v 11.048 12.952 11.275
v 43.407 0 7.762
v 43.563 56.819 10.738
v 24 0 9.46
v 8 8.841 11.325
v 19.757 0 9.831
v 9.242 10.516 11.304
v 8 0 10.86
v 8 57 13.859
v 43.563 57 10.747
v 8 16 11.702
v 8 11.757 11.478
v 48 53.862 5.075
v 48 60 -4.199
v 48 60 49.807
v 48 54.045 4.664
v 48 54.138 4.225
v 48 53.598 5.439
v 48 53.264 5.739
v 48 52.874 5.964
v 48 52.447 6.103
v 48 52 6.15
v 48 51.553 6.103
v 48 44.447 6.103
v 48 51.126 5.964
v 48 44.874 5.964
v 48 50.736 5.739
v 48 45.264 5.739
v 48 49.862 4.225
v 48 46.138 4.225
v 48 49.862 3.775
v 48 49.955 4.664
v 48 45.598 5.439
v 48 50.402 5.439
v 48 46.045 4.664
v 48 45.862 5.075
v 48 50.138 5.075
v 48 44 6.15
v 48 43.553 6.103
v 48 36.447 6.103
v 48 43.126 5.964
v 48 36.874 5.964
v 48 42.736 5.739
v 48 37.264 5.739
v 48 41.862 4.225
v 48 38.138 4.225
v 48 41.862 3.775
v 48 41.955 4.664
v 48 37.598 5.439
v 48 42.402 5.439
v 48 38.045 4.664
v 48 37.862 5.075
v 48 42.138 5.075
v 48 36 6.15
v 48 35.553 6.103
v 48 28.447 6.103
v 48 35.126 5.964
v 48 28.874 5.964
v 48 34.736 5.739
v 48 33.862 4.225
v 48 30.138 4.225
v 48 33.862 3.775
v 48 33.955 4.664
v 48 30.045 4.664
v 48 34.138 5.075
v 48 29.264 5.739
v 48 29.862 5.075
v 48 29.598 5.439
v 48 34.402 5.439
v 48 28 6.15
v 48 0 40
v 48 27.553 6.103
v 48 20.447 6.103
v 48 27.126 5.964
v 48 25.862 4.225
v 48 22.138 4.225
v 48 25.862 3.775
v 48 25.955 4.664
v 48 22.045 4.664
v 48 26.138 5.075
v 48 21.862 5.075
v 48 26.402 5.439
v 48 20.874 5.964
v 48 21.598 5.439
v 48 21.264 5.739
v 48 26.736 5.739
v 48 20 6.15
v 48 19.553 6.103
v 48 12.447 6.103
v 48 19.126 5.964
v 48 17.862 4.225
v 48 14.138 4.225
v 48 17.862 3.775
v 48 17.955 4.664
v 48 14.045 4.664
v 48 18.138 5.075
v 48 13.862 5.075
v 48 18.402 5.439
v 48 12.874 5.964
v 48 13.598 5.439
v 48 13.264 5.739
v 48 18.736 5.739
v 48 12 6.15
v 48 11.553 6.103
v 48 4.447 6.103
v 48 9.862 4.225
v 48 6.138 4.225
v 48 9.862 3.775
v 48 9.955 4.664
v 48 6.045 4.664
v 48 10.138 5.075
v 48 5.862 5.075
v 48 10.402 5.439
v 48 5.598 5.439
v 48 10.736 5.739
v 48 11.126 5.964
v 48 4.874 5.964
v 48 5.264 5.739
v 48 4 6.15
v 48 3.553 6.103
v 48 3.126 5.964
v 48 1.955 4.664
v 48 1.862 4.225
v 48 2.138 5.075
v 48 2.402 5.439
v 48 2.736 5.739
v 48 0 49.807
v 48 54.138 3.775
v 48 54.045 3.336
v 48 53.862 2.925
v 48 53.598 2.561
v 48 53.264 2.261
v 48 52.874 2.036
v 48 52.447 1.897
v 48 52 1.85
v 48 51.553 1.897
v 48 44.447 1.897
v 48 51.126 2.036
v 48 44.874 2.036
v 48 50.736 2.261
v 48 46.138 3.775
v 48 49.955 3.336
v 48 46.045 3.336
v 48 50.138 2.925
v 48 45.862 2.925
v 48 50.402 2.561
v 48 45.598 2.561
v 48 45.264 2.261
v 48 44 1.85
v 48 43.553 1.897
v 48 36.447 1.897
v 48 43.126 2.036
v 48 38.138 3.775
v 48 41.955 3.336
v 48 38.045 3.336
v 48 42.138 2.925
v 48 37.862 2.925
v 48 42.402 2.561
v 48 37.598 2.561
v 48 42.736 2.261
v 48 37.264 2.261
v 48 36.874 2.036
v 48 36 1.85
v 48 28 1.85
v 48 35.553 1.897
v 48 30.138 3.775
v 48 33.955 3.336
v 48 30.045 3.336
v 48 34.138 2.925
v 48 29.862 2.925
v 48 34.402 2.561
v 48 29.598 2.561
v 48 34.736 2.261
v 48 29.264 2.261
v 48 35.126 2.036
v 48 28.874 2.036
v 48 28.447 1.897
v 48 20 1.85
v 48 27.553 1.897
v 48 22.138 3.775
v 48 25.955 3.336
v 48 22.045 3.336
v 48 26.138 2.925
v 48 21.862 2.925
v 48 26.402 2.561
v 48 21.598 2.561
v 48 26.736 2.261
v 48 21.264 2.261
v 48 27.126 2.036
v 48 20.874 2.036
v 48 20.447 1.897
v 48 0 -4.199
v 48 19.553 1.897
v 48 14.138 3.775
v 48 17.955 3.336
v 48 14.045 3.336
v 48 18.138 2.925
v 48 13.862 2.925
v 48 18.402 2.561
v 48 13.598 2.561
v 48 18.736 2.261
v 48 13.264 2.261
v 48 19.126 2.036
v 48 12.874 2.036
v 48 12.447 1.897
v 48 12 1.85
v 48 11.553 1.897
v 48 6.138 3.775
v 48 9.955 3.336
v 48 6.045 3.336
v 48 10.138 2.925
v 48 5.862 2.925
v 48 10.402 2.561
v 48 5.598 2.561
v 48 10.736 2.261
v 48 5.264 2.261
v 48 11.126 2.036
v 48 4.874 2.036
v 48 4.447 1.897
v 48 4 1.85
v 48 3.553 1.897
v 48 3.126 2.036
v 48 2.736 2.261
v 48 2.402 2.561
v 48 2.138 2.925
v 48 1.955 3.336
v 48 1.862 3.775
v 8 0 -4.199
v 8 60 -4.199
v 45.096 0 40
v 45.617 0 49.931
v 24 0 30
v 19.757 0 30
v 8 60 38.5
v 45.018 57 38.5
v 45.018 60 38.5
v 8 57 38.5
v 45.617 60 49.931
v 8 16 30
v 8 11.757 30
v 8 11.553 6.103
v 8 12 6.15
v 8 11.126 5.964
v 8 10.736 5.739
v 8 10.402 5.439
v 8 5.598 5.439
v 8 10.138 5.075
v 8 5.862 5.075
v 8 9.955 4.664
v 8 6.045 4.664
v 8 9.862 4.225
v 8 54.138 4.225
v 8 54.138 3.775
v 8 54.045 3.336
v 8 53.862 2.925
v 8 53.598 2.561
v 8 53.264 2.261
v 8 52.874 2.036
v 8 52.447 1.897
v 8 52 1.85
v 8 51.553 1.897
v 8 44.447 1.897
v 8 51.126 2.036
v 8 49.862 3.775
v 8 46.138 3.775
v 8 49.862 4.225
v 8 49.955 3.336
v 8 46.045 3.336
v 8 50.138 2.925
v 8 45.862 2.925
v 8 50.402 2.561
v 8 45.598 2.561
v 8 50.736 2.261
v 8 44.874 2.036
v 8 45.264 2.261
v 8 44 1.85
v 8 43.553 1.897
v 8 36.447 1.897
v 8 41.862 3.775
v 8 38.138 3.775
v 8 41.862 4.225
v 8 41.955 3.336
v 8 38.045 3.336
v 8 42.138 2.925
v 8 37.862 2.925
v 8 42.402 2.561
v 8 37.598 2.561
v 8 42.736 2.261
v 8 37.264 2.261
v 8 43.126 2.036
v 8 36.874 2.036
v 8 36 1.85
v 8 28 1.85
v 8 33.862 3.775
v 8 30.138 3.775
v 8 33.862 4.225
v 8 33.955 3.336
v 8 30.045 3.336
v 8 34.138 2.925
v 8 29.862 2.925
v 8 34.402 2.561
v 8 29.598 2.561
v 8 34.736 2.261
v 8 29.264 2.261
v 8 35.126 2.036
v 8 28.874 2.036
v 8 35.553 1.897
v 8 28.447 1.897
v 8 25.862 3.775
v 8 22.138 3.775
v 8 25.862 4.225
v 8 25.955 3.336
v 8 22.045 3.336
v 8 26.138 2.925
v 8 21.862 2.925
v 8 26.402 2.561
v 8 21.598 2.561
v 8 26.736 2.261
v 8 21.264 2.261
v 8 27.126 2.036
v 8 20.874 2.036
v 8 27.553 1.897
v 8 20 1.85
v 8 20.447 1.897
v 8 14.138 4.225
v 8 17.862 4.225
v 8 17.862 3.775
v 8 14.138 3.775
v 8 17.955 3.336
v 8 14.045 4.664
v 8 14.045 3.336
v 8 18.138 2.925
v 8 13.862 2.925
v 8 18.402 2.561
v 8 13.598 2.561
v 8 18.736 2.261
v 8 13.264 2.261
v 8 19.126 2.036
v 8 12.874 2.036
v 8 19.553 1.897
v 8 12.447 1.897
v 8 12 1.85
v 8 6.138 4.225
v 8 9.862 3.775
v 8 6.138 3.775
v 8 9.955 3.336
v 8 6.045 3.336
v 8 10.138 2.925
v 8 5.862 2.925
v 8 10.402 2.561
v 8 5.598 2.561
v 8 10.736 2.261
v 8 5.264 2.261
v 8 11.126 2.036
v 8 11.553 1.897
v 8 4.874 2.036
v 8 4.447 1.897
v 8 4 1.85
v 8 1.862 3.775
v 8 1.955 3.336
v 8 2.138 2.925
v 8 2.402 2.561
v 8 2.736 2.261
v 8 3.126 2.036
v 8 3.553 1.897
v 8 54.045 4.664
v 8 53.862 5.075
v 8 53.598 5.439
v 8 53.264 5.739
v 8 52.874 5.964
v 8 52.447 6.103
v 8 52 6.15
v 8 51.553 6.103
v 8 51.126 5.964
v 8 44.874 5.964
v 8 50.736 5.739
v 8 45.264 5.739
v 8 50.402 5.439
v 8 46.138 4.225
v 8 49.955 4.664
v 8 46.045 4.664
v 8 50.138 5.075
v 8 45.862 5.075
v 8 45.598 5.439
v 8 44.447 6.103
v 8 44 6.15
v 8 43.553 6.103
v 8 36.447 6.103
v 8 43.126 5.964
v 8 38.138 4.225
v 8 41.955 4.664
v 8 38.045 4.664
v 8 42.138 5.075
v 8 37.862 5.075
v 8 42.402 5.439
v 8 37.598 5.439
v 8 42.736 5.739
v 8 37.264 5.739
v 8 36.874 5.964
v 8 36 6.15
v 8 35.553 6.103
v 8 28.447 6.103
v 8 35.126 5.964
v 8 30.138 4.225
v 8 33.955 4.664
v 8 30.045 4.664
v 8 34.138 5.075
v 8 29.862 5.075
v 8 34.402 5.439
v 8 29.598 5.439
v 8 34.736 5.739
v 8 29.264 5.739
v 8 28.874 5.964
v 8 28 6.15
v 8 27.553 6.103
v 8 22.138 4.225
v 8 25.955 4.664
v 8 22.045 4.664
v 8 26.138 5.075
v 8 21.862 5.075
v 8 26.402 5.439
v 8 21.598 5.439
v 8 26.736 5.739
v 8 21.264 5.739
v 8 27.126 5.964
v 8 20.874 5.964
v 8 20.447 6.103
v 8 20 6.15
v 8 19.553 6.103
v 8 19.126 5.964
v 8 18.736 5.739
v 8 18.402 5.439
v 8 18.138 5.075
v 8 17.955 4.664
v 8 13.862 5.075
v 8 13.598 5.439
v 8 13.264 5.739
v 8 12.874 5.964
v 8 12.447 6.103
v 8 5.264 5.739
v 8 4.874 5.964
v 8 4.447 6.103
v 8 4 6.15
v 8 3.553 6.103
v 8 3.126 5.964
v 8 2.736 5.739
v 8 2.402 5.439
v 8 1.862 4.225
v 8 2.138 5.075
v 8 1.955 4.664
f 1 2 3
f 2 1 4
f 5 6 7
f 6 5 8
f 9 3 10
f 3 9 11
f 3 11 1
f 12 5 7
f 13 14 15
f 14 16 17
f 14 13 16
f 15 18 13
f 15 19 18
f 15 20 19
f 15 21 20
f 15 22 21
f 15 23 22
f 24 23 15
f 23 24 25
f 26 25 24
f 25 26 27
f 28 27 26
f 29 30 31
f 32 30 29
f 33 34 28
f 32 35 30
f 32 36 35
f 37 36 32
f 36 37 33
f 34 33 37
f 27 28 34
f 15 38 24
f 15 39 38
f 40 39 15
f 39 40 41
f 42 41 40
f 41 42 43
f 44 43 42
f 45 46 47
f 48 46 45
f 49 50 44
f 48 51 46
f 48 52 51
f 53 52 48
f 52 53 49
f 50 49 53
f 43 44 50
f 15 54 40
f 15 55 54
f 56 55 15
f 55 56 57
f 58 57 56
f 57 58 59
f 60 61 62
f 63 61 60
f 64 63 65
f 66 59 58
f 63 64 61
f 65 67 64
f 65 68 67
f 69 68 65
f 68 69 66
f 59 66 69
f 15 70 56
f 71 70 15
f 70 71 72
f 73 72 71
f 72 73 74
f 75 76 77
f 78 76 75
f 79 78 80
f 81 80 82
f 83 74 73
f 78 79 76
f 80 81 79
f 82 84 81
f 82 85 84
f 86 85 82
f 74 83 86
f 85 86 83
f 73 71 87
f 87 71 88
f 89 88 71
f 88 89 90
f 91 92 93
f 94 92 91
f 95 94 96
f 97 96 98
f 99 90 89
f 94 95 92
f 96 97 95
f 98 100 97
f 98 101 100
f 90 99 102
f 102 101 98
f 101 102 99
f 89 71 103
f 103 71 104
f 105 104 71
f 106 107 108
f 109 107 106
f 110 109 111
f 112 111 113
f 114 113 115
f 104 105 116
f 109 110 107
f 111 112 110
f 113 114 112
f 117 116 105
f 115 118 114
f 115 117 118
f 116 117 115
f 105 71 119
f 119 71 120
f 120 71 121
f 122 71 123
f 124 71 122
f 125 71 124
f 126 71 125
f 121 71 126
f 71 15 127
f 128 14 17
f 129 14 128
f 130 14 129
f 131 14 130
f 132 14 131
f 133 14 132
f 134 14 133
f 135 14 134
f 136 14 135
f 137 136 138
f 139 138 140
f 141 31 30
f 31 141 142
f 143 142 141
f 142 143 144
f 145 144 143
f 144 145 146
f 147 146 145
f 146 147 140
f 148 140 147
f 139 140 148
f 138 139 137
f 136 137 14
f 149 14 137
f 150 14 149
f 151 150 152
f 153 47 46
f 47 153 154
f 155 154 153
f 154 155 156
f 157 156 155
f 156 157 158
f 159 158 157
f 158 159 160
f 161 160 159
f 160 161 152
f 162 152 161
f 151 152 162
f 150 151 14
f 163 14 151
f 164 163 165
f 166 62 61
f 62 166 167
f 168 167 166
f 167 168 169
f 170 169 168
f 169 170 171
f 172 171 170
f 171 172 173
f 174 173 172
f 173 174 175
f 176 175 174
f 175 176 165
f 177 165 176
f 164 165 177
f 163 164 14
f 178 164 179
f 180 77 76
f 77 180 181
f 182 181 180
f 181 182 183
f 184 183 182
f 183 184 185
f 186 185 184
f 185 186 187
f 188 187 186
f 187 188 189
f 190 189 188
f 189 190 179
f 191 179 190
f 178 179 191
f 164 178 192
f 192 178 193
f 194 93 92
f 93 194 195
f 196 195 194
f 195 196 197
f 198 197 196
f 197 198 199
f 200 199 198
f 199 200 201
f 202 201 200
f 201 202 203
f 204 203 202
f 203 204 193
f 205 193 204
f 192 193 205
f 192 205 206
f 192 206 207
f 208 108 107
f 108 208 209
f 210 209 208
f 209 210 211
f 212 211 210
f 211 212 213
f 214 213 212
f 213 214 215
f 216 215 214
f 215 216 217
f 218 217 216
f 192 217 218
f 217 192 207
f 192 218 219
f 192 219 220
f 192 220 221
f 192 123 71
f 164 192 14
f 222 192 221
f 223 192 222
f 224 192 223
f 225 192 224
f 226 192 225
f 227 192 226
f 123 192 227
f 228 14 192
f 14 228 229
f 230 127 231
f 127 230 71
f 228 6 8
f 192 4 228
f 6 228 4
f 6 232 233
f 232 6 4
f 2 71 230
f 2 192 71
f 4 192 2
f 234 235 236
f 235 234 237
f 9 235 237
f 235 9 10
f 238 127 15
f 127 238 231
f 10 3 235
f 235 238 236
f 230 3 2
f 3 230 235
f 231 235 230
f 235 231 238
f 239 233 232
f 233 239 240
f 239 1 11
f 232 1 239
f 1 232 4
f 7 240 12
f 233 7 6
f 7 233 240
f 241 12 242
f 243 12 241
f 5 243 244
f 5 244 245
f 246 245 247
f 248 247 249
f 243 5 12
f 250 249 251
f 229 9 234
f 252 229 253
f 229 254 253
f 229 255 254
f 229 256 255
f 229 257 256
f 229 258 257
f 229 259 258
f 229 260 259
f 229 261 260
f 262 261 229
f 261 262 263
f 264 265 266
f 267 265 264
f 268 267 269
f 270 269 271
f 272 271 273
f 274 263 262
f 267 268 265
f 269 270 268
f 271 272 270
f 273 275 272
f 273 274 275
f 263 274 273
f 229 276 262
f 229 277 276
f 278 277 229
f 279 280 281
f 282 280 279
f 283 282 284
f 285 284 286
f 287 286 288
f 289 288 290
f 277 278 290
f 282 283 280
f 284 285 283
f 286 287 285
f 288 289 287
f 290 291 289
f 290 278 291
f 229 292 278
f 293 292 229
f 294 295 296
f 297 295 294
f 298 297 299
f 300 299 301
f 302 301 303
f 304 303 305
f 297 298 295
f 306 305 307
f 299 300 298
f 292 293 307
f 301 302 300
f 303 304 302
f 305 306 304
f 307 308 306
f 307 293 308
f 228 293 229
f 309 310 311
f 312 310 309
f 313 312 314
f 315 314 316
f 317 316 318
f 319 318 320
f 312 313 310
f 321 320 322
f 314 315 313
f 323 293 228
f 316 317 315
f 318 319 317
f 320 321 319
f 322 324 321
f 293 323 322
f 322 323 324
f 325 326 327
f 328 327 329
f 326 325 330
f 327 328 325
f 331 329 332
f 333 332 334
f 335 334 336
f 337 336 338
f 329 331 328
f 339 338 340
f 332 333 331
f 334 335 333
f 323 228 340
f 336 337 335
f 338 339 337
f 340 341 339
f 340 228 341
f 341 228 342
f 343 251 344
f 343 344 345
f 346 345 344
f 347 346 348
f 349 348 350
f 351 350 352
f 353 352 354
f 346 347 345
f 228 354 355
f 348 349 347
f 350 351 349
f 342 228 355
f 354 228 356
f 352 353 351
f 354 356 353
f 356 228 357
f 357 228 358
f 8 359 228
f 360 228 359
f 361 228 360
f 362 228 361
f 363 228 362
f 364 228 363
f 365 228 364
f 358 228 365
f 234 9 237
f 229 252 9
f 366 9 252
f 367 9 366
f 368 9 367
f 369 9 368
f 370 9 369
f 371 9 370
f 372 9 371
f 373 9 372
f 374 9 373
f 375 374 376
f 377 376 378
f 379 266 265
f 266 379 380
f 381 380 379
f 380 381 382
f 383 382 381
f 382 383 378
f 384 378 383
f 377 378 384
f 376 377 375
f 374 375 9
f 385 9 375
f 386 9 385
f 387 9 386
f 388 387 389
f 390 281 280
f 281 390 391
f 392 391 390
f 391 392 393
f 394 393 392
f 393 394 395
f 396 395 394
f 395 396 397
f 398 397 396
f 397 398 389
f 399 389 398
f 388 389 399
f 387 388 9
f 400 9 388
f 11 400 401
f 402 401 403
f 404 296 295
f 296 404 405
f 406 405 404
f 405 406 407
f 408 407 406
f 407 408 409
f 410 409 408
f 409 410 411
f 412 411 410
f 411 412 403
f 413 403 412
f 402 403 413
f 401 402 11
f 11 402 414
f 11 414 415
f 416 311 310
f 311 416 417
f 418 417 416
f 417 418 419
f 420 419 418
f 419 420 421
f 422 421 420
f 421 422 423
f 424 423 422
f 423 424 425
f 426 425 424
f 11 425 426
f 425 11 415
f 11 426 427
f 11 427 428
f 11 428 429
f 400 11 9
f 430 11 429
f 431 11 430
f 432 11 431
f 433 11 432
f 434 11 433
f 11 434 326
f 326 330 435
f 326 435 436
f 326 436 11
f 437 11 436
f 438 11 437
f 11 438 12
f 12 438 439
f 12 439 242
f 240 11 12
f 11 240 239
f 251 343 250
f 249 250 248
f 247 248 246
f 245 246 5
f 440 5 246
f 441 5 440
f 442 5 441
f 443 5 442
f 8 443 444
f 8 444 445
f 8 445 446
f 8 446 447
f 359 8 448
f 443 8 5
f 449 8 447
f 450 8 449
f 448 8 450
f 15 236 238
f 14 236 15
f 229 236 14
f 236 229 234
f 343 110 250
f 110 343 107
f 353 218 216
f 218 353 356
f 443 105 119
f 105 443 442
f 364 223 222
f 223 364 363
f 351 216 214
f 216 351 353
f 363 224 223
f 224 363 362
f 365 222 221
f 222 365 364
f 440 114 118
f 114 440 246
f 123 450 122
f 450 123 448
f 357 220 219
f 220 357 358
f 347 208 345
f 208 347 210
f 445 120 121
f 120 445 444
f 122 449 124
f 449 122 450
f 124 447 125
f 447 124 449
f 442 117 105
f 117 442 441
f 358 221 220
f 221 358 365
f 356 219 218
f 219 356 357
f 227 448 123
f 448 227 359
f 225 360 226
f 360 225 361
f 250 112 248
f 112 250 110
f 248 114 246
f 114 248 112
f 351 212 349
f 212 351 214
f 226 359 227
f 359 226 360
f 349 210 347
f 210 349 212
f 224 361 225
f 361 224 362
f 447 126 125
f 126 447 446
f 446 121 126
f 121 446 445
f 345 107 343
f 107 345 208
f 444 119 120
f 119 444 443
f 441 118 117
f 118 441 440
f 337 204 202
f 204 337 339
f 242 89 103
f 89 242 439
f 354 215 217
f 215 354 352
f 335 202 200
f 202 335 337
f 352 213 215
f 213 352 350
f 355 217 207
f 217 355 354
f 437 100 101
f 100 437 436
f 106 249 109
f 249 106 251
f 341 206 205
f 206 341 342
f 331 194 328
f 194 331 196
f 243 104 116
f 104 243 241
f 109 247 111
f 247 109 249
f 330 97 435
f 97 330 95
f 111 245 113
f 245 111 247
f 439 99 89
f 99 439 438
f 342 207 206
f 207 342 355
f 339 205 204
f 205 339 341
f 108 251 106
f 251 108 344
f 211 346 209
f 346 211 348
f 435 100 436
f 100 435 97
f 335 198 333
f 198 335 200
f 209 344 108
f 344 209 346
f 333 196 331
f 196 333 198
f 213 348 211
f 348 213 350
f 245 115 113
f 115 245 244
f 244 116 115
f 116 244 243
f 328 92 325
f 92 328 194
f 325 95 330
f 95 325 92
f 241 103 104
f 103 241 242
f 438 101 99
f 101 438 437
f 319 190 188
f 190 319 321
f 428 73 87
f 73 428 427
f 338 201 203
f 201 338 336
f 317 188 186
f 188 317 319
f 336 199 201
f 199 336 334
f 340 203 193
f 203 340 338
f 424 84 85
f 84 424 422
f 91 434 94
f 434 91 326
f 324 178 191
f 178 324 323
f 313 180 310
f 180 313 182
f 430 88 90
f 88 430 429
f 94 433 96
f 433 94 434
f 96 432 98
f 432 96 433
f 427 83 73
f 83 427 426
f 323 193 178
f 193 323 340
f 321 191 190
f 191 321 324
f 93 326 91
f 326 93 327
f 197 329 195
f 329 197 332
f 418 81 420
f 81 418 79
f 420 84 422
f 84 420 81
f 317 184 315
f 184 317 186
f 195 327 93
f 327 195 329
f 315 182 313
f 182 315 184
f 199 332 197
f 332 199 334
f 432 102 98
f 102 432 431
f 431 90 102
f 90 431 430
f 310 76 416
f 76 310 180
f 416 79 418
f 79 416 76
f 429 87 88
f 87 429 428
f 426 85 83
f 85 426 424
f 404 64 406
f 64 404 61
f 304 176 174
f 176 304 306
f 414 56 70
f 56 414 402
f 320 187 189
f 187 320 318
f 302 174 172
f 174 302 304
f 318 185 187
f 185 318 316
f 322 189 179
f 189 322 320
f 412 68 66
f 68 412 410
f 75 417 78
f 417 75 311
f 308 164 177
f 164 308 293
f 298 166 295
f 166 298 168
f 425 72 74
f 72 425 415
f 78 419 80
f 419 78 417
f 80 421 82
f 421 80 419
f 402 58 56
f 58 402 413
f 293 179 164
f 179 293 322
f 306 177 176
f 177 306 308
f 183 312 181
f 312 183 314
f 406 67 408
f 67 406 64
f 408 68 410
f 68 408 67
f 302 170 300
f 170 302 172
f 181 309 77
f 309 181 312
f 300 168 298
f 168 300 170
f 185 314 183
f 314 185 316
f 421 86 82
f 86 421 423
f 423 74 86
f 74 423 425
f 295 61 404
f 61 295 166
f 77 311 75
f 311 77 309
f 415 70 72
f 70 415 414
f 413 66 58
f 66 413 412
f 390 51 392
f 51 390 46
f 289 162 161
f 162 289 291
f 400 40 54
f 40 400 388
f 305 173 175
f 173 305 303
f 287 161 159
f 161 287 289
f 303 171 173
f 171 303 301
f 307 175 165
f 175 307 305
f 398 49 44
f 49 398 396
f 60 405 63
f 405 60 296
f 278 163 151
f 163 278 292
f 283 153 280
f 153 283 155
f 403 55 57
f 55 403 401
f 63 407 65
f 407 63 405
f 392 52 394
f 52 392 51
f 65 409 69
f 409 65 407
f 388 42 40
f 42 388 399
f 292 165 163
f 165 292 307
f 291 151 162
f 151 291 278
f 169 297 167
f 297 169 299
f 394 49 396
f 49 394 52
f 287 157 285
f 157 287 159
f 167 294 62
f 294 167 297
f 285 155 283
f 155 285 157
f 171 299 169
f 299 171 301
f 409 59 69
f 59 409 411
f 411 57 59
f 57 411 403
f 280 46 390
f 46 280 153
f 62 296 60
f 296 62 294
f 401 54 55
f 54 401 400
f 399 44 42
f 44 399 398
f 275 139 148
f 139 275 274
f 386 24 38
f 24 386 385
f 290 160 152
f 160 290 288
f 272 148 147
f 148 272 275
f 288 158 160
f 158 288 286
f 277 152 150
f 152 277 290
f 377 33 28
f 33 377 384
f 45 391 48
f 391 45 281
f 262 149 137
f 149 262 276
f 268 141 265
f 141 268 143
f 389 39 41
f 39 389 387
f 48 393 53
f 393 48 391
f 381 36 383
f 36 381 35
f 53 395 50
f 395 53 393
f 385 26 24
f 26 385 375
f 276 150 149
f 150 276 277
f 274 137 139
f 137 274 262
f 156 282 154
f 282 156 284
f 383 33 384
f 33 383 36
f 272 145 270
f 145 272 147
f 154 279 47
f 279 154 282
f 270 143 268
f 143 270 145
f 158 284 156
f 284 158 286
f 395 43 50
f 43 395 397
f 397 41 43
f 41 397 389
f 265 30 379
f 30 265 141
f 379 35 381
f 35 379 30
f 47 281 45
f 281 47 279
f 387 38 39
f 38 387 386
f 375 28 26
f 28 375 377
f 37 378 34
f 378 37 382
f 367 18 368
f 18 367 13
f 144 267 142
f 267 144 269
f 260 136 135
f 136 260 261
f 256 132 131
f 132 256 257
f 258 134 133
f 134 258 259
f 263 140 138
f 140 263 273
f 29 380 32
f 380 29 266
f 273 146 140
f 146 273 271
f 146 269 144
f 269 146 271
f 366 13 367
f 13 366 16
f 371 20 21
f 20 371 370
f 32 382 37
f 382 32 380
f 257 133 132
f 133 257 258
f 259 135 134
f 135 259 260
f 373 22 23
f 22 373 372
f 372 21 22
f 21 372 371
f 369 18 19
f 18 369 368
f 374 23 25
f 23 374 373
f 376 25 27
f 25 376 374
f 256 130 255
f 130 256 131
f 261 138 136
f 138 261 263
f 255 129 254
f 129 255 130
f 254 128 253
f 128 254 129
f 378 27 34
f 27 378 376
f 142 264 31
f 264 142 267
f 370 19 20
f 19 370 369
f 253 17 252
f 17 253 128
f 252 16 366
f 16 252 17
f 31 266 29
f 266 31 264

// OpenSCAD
difference() {
union() {
    translate([0,0,0])
    rotate([3,5,0])
    cube([48,65,11.5]);
    
    // close back top gap
    translate([-1,0,0])
    rotate([3,0,0])
    cube([2.3,56,11.5]);
    
    // bottom gap
    translate([0,0,-4.199])
    cube([48,63,11.5]);
    
    // right gap
    translate([-1,55.4,6.52])
    rotate([3,5,0])
    cube([55,10,8]);
    
    // right rail
    translate([0,57,0])
    cube([48,4,38.5]);
    
    // front rail
    translate([43,0,0])
    rotate([0,3,0])
    cube([6,64,50]);
    
    // left rail
    translate([24,0,0])
    rotate([0,0,135])
    cube([36,3,30]);
}
    // clean up
    // left
    translate([-2,-10,-10])
    cube([60,10,50]);

    // front
    translate([48,-2,-10])
    cube([10,70,60]);

    // back - shorten to 40 from 48
    translate([-10,-2,-10])
    cube([18,70,60]);

    // right
    translate([-2,60,-10])
    cube([60,10,70]);

    // top
    //translate([0,-2,50])
    //cube([70,70,10]);

    // Holes
    translate([-4,4,4])
    rotate([0,90,0])
    cylinder(r=2.15,60, $fn=30);

    translate([-4,12,4])
    rotate([0,90,0])
    cylinder(r=2.15,60, $fn=30);

    translate([-4,20,4])
    rotate([0,90,0])
    cylinder(r=2.15,60, $fn=30);

    translate([-4,28,4])
    rotate([0,90,0])
    cylinder(r=2.15,60, $fn=30);

    translate([-4,36,4])
    rotate([0,90,0])
    cylinder(r=2.15,60, $fn=30);

    translate([-4,44,4])
    rotate([0,90,0])
    cylinder(r=2.15,60, $fn=30);
    
    translate([-4,52,4])
    rotate([0,90,0])
    cylinder(r=2.15,60, $fn=30);
    
}
